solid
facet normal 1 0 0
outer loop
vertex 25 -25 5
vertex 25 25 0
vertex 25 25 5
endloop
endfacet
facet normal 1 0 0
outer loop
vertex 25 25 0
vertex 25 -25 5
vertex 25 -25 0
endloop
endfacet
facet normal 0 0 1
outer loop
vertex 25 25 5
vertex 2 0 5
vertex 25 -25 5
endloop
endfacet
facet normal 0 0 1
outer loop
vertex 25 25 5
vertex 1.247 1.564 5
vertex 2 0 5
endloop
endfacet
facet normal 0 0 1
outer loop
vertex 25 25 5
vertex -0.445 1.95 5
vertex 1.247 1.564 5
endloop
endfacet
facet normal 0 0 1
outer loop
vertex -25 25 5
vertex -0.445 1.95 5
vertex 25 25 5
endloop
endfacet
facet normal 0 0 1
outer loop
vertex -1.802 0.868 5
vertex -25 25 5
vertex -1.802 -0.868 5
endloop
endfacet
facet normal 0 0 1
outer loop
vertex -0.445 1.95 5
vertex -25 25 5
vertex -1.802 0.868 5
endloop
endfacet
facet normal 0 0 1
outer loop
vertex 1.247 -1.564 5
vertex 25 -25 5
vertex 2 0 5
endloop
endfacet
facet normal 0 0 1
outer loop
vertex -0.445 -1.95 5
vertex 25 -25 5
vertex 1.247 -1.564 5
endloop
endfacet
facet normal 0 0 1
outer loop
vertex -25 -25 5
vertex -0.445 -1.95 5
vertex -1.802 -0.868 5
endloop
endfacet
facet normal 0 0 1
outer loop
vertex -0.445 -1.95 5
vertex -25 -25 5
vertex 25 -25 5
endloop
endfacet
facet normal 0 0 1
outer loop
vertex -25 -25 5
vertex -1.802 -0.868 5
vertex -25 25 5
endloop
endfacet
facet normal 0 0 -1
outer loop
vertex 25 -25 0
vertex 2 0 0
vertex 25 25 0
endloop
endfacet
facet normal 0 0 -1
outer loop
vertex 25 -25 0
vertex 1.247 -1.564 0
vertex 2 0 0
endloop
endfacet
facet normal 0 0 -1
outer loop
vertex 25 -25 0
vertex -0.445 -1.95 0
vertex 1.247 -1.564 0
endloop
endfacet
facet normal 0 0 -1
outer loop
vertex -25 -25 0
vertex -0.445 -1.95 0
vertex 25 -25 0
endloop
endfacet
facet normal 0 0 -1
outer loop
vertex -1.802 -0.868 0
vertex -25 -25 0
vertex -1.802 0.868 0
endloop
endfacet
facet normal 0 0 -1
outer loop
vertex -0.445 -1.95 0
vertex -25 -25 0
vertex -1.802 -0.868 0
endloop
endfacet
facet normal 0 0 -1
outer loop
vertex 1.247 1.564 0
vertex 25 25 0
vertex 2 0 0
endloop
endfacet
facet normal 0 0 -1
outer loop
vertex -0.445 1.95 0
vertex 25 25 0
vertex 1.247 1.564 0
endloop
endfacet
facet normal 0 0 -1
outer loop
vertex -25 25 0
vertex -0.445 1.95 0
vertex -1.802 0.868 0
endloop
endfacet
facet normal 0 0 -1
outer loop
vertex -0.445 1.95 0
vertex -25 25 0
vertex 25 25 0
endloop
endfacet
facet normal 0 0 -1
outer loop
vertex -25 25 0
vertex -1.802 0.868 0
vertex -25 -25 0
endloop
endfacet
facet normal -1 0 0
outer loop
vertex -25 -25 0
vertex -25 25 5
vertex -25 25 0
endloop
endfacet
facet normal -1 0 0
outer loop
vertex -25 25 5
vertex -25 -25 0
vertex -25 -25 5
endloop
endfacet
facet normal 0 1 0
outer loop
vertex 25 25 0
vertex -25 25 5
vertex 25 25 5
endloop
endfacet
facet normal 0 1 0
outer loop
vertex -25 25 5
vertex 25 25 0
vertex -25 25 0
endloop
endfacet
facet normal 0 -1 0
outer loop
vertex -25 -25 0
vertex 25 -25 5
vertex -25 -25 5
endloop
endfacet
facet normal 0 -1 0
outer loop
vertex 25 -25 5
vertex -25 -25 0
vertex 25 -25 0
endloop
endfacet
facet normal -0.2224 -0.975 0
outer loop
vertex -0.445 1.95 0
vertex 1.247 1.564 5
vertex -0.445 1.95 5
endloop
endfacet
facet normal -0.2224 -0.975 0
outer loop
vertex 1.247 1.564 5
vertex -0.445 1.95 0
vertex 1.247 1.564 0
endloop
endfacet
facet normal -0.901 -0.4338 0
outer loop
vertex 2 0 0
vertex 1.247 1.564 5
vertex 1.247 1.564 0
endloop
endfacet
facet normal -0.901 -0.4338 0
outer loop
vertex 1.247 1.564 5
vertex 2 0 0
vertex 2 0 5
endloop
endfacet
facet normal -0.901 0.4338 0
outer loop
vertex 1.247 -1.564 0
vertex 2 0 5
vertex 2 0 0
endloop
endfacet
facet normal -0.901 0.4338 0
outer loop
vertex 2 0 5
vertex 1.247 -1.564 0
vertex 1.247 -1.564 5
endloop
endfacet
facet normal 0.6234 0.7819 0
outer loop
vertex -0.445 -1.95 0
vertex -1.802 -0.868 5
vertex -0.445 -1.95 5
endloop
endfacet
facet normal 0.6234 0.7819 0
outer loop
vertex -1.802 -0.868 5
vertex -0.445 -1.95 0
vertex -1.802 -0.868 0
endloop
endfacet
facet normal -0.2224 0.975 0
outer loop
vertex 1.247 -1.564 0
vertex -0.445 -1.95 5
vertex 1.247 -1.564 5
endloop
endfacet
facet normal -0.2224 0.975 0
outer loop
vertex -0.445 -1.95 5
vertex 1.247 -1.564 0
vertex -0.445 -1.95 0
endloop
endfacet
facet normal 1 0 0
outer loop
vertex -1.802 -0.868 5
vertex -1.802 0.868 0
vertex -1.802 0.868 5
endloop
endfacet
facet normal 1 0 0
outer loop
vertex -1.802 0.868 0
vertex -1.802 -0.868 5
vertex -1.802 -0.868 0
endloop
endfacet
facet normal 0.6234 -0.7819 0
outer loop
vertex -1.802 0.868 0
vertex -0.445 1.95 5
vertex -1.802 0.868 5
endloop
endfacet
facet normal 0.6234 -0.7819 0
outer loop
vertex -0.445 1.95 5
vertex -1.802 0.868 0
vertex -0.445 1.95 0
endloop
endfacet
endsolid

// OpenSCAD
module base_plate() {
    difference() {
        cube([50, 50, 5], center = true);
        cylinder(h = 5, r = 2, center = true);
    }
}

translate([0, 0, 2.5])
base_plate();
